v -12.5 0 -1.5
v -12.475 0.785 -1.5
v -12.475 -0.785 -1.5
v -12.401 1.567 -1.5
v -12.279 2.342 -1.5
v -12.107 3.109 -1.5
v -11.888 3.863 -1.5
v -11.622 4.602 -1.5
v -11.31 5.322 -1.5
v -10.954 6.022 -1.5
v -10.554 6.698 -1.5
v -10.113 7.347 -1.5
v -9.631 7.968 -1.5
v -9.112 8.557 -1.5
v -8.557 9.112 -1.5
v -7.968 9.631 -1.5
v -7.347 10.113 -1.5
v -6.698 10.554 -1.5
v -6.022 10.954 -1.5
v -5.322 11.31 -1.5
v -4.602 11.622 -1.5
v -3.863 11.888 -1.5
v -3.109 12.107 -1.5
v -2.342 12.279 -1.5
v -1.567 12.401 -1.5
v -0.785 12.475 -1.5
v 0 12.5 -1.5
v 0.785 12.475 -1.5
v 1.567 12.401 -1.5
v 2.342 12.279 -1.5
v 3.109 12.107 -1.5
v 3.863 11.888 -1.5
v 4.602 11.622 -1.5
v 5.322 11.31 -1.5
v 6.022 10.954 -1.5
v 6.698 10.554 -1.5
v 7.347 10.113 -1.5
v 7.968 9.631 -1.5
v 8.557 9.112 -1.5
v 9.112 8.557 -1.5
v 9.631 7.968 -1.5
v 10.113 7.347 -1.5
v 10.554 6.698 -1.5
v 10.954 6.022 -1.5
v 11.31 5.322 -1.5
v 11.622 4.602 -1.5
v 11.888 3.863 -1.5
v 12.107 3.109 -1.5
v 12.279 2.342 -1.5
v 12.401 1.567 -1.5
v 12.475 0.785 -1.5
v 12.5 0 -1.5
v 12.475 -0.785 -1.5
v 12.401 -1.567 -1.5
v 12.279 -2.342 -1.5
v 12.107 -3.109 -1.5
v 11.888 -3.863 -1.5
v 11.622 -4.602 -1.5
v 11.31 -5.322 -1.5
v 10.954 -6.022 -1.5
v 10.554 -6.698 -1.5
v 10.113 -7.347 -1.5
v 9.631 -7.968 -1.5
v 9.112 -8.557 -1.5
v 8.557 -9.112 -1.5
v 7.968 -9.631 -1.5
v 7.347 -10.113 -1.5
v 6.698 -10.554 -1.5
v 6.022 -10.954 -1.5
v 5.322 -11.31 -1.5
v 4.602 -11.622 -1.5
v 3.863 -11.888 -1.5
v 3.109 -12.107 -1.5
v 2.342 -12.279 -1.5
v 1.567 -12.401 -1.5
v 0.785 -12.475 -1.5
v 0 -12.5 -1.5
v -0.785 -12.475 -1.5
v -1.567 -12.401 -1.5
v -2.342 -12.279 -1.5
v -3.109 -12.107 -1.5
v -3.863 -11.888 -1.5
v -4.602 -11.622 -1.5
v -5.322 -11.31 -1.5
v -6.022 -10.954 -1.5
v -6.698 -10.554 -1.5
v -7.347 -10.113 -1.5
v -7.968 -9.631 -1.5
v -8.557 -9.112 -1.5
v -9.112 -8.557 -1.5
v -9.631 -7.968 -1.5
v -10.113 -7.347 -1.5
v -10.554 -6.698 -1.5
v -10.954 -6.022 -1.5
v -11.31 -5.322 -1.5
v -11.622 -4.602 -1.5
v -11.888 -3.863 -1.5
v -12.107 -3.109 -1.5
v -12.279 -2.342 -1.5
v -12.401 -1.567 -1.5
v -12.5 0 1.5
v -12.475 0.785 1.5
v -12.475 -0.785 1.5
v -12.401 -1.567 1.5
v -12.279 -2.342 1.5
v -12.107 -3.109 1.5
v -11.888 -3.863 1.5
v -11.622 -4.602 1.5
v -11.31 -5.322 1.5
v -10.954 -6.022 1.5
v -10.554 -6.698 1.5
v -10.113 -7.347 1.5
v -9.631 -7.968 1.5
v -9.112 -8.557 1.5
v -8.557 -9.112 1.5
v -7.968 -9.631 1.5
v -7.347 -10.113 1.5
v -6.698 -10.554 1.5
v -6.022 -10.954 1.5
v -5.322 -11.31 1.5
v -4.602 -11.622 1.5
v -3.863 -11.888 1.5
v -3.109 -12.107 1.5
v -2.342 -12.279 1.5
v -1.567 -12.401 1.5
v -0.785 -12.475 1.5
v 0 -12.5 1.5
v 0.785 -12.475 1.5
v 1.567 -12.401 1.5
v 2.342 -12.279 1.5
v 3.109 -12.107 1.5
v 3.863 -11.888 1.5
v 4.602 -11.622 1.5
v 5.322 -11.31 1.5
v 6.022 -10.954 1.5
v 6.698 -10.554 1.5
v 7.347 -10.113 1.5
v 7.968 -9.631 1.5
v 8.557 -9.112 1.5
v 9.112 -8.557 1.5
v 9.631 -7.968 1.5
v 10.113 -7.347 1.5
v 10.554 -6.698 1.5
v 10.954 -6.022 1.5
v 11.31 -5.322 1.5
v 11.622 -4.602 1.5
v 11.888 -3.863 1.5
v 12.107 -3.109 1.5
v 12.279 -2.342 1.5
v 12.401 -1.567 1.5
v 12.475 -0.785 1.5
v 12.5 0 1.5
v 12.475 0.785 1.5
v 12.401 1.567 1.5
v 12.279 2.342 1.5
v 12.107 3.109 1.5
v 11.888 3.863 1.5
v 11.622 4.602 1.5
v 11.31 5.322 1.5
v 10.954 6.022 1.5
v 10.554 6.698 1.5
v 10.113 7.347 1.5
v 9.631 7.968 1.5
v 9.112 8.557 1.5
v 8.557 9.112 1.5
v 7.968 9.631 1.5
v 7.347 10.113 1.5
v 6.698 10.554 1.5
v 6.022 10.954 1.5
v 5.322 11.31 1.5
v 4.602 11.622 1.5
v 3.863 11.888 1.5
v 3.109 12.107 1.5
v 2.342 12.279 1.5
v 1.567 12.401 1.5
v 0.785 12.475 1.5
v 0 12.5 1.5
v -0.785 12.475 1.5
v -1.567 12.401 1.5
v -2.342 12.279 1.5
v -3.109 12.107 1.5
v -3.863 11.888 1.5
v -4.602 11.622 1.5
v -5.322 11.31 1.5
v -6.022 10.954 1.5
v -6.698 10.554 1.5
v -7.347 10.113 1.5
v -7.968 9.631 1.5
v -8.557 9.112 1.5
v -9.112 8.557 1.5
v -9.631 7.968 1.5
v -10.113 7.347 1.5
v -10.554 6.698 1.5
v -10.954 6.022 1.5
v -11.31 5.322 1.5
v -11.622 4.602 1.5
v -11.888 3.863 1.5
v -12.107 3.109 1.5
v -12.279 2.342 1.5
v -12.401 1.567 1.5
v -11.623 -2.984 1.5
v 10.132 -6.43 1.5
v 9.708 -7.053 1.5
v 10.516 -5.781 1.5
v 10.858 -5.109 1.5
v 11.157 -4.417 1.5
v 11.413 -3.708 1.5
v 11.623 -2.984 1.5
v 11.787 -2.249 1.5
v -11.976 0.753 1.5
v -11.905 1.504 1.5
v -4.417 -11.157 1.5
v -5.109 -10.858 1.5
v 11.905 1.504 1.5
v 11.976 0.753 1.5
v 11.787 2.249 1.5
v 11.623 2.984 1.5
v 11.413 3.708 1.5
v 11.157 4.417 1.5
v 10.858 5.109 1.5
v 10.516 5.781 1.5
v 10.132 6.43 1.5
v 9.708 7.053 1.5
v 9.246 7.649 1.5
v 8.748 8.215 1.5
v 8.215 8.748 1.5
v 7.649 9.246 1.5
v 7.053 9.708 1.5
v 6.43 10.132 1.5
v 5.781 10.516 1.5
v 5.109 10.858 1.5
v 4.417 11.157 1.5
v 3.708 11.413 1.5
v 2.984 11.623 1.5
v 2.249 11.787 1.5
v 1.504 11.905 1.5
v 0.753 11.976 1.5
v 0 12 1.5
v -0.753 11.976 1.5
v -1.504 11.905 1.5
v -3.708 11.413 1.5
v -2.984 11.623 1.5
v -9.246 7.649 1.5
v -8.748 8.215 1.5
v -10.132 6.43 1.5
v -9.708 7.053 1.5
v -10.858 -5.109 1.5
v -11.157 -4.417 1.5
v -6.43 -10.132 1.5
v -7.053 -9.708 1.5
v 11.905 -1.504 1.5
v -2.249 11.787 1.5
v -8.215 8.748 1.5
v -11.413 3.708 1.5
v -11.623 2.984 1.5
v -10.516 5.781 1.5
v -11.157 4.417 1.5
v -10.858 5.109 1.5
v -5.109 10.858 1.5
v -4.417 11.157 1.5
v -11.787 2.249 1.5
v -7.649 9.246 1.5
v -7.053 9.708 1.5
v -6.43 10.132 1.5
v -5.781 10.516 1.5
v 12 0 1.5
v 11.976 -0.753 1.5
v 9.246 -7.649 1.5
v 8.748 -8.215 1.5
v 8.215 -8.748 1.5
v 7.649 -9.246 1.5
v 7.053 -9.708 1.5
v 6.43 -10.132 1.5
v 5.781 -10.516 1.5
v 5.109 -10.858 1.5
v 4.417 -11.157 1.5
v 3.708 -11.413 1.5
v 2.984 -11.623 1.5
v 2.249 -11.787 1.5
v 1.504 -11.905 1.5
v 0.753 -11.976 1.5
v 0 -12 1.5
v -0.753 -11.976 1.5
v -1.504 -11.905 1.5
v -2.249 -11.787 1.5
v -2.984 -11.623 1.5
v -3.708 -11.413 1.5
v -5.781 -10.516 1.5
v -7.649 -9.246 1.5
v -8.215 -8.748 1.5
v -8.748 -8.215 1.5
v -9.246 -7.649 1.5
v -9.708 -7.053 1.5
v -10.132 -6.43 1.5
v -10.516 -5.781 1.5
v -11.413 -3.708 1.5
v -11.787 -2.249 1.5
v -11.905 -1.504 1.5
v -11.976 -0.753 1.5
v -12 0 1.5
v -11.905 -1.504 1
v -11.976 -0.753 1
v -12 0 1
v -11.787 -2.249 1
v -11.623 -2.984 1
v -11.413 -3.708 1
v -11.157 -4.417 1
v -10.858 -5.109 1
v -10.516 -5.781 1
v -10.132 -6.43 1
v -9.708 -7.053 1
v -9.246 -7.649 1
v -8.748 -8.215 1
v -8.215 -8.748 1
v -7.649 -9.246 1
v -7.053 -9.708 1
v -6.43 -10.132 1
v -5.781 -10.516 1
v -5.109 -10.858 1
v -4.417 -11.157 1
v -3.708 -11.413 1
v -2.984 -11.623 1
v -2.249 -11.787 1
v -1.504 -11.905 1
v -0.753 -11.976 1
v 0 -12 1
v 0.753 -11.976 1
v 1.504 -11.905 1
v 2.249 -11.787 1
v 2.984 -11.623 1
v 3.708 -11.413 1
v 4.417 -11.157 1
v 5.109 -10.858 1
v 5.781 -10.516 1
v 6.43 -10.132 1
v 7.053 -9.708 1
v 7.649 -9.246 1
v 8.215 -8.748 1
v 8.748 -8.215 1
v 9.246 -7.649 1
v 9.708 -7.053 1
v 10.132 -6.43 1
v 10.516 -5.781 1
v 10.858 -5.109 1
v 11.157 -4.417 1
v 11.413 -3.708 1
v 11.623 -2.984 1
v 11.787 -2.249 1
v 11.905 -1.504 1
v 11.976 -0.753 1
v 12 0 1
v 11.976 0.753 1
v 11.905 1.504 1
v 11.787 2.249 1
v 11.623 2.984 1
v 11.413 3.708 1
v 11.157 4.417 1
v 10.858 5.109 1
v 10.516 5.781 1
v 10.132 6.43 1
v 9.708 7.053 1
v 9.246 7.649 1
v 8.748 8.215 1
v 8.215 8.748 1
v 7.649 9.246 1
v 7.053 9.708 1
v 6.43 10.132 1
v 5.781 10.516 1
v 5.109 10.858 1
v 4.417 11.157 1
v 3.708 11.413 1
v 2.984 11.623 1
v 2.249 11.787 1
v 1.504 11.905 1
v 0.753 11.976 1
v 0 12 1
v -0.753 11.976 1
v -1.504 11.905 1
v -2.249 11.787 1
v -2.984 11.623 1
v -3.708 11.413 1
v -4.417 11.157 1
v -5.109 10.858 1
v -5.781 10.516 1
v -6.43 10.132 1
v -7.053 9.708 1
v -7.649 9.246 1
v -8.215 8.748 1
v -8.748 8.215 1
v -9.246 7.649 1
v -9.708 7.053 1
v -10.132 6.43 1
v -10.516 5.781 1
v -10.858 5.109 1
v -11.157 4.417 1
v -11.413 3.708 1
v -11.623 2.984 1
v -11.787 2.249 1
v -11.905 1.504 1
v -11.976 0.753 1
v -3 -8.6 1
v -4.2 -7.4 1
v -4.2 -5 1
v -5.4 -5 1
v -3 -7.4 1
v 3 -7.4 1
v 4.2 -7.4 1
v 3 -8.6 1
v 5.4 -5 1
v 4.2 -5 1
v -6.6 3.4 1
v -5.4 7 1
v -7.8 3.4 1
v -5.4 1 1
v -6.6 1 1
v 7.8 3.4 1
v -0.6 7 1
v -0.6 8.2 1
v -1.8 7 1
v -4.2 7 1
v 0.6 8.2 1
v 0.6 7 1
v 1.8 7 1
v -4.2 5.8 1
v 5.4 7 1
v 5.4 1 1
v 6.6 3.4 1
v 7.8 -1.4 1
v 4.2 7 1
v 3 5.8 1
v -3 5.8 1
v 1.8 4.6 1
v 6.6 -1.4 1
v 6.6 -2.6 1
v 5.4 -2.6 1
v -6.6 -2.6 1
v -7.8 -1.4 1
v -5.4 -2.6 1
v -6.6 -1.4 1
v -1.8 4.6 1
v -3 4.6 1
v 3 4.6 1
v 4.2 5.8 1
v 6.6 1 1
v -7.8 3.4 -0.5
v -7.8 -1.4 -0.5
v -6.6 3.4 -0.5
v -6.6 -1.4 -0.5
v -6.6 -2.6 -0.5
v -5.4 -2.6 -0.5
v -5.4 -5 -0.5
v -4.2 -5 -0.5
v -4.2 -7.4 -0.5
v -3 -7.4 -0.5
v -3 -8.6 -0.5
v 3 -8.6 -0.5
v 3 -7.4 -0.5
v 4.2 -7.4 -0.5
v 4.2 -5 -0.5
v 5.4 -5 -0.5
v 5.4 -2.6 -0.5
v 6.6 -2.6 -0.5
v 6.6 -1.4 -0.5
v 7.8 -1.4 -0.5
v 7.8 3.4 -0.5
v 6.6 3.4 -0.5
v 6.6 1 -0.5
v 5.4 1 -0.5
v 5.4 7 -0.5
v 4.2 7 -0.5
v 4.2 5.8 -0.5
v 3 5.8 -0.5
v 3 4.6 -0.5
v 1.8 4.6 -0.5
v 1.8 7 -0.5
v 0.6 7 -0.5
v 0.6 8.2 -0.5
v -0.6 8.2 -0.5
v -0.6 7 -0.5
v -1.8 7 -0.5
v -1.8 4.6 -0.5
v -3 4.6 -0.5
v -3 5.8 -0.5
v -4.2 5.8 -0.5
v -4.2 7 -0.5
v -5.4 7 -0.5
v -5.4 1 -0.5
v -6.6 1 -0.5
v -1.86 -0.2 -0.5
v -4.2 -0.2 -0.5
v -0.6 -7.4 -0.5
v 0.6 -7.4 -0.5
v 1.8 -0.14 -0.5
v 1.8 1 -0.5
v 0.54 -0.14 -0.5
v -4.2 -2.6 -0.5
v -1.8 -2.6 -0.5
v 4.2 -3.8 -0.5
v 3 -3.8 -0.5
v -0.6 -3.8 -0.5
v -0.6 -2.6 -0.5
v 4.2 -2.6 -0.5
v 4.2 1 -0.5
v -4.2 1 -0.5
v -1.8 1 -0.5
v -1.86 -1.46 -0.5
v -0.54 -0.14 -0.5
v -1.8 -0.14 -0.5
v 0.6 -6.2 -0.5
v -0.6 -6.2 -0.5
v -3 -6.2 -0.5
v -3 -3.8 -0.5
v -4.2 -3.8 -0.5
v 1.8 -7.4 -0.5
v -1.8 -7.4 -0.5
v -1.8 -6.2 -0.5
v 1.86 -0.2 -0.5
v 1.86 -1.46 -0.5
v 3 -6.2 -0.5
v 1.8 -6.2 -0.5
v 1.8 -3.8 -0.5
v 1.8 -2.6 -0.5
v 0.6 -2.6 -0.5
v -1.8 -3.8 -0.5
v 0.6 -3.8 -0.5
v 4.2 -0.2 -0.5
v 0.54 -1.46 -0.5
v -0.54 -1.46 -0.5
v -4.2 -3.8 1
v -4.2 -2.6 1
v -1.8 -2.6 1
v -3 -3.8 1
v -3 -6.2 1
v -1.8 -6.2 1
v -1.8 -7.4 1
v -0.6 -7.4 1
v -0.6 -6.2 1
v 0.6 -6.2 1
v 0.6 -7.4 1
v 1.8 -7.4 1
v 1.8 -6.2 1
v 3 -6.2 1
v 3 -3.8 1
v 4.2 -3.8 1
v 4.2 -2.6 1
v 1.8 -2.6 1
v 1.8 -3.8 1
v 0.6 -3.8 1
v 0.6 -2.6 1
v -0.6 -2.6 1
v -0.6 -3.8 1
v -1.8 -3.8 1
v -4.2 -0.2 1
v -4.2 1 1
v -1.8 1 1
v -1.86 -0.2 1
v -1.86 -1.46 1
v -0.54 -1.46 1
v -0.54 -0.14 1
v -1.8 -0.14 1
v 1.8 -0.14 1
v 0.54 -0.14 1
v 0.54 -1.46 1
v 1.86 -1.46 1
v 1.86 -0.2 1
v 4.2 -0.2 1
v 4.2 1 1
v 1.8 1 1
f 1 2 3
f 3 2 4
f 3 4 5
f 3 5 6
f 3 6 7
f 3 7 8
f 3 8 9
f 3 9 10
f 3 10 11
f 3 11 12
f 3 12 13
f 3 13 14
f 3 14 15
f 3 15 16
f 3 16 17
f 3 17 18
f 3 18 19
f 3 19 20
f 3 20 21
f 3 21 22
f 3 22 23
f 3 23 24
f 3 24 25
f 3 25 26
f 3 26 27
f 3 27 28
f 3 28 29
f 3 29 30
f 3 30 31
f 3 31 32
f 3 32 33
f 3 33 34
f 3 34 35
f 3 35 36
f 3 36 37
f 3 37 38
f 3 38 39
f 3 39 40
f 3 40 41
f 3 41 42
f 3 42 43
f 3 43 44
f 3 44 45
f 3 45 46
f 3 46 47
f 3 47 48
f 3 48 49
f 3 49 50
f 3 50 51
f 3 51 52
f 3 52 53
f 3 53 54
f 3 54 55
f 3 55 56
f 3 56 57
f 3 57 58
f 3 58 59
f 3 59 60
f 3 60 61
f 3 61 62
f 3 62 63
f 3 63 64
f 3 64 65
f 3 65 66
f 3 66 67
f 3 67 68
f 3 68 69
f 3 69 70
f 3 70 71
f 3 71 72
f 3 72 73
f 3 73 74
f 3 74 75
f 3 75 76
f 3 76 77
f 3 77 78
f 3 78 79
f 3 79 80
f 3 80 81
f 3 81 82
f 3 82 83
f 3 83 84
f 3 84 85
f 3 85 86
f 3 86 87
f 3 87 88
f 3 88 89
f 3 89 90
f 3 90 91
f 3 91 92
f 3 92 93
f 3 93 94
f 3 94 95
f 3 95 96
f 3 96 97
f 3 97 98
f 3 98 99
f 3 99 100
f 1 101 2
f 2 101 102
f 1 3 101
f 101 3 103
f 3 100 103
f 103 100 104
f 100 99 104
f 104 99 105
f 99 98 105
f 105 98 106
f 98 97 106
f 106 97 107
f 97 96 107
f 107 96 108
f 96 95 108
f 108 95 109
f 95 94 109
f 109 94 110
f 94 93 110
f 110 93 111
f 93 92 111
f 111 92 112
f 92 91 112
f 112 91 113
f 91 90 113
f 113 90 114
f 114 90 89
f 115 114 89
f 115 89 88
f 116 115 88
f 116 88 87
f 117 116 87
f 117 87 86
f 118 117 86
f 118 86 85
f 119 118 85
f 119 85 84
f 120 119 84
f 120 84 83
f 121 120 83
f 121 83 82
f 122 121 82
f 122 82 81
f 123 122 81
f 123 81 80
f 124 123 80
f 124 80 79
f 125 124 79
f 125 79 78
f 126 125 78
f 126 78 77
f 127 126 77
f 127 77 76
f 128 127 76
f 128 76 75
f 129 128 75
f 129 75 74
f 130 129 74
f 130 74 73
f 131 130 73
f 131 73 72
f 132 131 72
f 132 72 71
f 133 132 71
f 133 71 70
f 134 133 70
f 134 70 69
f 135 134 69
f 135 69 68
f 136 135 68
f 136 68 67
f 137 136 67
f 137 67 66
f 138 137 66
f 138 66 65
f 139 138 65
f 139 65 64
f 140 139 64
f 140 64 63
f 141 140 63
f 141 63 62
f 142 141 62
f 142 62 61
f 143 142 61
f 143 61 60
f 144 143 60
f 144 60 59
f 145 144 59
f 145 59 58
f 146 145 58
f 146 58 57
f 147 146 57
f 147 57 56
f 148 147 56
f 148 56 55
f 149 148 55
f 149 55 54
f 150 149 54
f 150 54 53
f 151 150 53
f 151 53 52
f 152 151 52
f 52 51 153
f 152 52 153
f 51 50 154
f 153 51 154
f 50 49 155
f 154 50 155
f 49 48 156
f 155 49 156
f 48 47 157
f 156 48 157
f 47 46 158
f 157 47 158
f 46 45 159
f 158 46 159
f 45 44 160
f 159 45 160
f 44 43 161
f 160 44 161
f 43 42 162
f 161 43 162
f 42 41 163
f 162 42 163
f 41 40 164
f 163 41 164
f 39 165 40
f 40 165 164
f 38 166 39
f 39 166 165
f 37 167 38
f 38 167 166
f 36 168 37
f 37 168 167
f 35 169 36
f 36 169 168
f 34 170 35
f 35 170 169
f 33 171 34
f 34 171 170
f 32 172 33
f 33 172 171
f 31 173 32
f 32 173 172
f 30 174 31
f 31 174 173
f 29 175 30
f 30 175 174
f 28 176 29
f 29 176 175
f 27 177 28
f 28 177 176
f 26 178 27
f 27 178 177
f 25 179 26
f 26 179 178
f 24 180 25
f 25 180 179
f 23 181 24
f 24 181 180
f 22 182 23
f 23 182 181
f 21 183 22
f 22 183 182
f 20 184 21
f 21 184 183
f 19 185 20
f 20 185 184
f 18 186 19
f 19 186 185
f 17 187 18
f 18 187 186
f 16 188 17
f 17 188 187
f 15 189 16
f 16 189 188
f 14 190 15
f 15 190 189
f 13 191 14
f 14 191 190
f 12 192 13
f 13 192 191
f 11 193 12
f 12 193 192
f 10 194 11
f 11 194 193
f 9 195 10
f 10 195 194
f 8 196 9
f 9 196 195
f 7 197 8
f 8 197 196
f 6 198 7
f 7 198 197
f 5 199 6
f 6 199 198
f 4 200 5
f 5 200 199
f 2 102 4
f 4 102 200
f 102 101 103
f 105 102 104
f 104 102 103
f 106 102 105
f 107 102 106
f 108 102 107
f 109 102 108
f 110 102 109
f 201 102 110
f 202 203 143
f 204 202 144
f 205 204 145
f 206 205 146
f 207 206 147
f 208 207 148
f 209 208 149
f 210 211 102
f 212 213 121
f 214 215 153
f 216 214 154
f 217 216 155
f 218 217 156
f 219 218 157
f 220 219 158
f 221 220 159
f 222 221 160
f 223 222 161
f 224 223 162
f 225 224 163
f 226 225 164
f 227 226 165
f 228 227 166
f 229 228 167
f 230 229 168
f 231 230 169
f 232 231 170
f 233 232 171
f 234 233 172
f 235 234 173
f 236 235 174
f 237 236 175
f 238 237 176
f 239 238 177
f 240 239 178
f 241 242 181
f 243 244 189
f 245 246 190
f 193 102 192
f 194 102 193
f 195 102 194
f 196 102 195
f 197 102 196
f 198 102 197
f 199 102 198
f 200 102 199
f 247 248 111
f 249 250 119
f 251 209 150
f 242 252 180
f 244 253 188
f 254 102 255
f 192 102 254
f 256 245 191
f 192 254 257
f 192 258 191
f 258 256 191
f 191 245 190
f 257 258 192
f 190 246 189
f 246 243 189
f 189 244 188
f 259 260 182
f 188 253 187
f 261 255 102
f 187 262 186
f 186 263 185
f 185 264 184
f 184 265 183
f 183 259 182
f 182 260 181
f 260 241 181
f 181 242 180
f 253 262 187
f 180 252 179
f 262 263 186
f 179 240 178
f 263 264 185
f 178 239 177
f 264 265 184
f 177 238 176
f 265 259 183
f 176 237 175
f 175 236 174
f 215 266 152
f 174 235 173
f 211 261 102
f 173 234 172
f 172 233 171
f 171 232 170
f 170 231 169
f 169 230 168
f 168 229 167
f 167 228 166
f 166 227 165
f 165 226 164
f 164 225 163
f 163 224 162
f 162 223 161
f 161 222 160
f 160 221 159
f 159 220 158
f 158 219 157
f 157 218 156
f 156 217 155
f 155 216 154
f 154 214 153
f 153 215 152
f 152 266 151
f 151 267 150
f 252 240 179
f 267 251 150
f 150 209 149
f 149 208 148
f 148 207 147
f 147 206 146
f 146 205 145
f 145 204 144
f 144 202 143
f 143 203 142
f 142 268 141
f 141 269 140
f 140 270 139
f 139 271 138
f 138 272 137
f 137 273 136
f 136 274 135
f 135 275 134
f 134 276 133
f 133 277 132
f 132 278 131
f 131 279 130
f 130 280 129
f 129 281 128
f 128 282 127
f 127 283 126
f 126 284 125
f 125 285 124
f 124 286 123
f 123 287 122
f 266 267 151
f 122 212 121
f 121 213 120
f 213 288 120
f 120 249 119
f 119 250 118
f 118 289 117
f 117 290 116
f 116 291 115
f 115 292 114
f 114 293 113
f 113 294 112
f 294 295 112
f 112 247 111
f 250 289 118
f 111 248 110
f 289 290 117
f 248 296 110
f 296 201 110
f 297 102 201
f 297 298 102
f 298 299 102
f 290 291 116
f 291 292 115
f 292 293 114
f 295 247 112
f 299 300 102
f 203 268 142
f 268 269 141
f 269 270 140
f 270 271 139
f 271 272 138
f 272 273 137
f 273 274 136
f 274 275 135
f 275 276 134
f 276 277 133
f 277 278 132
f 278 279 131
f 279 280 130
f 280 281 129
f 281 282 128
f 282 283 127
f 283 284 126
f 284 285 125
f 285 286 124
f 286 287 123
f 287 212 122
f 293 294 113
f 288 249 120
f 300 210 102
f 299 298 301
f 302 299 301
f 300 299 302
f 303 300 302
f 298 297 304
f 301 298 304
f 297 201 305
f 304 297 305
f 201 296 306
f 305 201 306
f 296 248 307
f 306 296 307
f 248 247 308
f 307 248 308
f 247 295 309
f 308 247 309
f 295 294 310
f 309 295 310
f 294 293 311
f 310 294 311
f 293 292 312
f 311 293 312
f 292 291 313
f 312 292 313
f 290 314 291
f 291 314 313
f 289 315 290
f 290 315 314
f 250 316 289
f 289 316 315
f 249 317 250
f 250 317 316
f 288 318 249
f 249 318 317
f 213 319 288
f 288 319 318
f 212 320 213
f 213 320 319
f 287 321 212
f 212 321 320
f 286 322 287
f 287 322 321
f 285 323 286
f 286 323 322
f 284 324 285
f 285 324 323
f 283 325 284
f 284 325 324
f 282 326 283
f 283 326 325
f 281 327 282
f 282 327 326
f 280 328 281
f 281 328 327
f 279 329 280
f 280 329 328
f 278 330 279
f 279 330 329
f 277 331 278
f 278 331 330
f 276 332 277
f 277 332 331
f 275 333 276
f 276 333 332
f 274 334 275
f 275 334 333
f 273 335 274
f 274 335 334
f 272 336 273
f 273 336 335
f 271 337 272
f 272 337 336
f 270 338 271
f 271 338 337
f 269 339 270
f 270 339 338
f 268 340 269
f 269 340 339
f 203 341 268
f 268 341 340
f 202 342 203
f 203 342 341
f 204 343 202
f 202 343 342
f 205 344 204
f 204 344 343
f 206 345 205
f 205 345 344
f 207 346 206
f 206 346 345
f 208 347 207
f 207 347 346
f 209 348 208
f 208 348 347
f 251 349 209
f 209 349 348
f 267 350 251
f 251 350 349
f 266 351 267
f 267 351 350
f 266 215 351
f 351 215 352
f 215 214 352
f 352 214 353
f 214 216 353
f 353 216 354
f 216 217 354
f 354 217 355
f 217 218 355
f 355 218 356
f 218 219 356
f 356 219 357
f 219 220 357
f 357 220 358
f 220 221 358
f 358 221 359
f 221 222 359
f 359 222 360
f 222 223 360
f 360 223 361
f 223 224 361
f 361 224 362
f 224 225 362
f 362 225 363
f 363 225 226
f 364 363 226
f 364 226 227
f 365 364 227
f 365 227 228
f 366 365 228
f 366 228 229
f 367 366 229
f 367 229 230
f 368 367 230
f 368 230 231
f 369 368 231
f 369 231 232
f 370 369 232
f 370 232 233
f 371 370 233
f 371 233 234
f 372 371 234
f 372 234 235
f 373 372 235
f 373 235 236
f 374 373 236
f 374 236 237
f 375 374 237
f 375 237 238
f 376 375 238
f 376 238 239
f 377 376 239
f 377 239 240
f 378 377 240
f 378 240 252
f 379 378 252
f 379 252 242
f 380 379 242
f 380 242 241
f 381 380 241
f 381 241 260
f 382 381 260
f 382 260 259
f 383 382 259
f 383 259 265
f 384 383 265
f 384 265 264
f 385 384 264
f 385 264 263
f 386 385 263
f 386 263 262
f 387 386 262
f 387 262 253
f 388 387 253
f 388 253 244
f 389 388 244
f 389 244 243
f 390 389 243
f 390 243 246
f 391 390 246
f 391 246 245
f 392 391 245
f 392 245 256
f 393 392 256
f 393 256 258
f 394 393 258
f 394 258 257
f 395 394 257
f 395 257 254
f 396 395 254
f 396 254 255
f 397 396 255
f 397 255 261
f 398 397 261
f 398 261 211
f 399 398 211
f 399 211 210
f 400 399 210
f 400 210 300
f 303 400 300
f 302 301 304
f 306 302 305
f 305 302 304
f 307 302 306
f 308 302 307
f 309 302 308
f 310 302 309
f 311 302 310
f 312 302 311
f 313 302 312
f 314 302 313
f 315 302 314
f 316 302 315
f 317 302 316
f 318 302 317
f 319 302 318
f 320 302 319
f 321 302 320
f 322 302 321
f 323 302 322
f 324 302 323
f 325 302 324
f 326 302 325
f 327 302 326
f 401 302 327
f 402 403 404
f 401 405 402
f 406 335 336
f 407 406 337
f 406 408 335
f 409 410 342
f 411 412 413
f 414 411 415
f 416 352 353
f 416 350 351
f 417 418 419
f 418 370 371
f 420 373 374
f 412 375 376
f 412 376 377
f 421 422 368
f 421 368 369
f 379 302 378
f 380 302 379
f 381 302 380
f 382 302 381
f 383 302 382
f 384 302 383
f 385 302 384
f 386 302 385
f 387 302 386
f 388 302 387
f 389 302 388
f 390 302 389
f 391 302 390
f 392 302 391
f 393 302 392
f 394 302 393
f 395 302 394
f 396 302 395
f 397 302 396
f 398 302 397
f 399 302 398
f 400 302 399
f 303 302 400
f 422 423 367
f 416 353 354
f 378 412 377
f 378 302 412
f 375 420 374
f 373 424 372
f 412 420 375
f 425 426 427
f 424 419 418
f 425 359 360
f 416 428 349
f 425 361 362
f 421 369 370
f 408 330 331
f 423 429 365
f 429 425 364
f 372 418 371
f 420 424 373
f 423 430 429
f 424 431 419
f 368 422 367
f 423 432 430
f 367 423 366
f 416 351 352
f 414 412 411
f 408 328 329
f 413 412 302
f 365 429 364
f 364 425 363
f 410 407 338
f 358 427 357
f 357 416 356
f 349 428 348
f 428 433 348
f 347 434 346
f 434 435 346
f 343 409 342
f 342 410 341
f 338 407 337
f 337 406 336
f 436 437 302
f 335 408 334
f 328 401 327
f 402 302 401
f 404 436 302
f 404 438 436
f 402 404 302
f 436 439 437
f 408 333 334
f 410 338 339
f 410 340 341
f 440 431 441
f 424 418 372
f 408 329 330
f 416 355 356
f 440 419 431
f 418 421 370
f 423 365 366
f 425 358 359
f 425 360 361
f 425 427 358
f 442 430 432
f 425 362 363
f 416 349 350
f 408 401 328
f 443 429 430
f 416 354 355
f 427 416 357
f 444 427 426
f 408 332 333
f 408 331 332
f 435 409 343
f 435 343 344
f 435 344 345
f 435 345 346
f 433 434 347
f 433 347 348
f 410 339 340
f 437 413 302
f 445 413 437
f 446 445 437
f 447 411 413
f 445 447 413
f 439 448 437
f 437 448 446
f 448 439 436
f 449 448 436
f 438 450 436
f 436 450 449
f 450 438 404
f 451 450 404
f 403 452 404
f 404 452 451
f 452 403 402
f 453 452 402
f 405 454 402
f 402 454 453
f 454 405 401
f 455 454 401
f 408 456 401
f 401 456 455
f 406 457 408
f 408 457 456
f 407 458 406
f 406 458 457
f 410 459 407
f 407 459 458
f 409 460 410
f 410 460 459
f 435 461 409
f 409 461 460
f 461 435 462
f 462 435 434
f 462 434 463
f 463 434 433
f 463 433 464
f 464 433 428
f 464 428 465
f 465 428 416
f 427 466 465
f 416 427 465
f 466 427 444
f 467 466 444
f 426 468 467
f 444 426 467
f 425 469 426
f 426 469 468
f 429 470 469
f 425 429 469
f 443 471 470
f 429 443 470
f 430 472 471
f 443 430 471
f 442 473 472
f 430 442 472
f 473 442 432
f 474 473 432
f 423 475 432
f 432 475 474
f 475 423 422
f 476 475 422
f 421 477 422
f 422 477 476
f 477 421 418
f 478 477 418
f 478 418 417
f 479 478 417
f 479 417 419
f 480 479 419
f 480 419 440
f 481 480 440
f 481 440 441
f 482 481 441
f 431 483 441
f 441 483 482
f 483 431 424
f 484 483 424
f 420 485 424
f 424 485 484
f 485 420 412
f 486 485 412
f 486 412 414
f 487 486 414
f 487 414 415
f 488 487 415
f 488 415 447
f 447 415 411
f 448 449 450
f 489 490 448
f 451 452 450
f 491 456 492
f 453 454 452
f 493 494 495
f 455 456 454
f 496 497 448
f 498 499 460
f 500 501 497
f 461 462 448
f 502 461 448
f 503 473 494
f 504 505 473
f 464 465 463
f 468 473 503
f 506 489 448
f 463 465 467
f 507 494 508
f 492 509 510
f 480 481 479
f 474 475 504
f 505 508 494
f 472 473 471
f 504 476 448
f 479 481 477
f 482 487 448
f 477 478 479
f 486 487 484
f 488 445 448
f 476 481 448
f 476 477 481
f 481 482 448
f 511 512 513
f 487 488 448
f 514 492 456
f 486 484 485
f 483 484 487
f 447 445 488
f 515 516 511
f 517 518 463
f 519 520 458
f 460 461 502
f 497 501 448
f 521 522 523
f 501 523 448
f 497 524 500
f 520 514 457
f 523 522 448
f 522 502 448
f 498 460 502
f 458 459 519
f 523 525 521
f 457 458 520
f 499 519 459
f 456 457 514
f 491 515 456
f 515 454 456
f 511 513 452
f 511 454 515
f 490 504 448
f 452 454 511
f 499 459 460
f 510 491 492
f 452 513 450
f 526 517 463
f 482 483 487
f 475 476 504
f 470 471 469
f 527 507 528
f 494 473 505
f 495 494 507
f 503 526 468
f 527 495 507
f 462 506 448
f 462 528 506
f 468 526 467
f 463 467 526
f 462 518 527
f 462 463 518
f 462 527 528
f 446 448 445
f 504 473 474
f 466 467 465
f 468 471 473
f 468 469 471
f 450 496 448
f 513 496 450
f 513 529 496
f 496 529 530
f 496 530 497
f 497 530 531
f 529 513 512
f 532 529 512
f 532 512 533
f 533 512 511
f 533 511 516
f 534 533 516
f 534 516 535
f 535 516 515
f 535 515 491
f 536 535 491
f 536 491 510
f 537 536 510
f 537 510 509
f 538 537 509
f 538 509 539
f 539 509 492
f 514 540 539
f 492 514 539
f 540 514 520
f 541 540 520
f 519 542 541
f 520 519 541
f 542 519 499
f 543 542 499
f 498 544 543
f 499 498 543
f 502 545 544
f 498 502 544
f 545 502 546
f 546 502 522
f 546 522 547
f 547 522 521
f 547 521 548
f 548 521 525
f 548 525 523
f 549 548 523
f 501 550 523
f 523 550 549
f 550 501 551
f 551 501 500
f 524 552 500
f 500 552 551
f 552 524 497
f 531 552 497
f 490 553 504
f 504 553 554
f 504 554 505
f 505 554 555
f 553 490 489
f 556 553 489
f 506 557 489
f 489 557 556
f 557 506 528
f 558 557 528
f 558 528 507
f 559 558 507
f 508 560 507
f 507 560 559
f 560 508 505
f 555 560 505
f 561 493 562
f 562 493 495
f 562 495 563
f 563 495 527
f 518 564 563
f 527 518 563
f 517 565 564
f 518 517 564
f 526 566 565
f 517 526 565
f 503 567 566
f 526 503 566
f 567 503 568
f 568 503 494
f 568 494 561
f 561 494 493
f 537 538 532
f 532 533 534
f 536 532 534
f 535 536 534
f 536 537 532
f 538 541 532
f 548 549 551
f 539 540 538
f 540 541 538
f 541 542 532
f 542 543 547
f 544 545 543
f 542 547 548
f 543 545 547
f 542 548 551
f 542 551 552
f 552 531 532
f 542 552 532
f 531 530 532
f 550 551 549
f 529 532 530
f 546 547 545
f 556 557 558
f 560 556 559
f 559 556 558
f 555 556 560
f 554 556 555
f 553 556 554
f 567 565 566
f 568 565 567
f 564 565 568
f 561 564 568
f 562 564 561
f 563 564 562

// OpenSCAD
cubesize = 1;
thickness = 3;

coin(25);

module monster()
{
	difference()
	{
		union()
		{
			monsterHead();
			
			monsterEar();
			mirror([1,0,0])
				monsterEar();
			
			monsterSideHorn();
			mirror([1,0,0])
				monsterSideHorn();
	
			monsterCenterHorn();
		}	

		union()
		{
			monsterFace();
			mirror([1,0,0])
				monsterFace();
		}
	}
}

module monsterFace()
{
	//eye
	translate([-2.5*cubesize,2*cubesize,0])
		cube([2*cubesize,1*cubesize,1.1*thickness*cubesize], true);
	//nose
	translate([-1*cubesize,1*cubesize,0])
		cube([1.1*cubesize,1.1*cubesize,1.1*thickness*cubesize], true);
	//mouth
	translate([-3*cubesize,-1*cubesize,0])
		cube([1*cubesize,1*cubesize,1.1*thickness*cubesize], true);
	translate([-2*cubesize,-2*cubesize,0])
		cube([1*cubesize,3*cubesize,1.1*thickness*cubesize], true);
	translate([-1*cubesize,-3*cubesize,0])
		cube([1*cubesize,3*cubesize,1.1*thickness*cubesize], true);
	translate([0*cubesize,-2*cubesize,0])
		cube([1*cubesize,3*cubesize,1.1*thickness*cubesize], true);
}

module monsterEar()
{
	translate([-5*cubesize,1*cubesize,0])
		cube([1*cubesize,3*cubesize,thickness*cubesize], true);
	translate([-6*cubesize,2.5*cubesize,0])
		cube([1*cubesize,4*cubesize,thickness*cubesize], true);
}

module monsterHead()
{	
	cube([5*cubesize,11*cubesize,thickness*cubesize], true);
	translate([0,0.5*cubesize,0])
		cube([7*cubesize,10*cubesize,thickness*cubesize], true);
	translate([0,1.5*cubesize,0])
		cube([9*cubesize,8*cubesize,thickness*cubesize], true);
}

module monsterSideHorn()
{
	translate([-4*cubesize,6.5*cubesize,0])
		cube([1*cubesize,2*cubesize,thickness*cubesize], true);
	translate([-3*cubesize,6*cubesize,0])
		cube([1*cubesize,1*cubesize,thickness*cubesize], true);
}

module monsterCenterHorn()
{
	translate([0*cubesize,6.5*cubesize,0])
		cube([3*cubesize,2*cubesize,thickness*cubesize], true);
	translate([0*cubesize,7*cubesize,0])
		cube([1*cubesize,3*cubesize,thickness*cubesize], true);
}

module coin(diameter)
{
	scaleFactor = diameter/25 * 1.2;
	difference()
	{
		cylinder(h=3, r=diameter/2, $fn=100, center=true);

		translate([0,0,1.5])
		cylinder(h=1, r=(diameter-1)/2, $fn=100, center=true);

		union()
		{
			translate([0,-2,1])
			scale([scaleFactor, scaleFactor, 1])
				monster();
		}
	}
}
